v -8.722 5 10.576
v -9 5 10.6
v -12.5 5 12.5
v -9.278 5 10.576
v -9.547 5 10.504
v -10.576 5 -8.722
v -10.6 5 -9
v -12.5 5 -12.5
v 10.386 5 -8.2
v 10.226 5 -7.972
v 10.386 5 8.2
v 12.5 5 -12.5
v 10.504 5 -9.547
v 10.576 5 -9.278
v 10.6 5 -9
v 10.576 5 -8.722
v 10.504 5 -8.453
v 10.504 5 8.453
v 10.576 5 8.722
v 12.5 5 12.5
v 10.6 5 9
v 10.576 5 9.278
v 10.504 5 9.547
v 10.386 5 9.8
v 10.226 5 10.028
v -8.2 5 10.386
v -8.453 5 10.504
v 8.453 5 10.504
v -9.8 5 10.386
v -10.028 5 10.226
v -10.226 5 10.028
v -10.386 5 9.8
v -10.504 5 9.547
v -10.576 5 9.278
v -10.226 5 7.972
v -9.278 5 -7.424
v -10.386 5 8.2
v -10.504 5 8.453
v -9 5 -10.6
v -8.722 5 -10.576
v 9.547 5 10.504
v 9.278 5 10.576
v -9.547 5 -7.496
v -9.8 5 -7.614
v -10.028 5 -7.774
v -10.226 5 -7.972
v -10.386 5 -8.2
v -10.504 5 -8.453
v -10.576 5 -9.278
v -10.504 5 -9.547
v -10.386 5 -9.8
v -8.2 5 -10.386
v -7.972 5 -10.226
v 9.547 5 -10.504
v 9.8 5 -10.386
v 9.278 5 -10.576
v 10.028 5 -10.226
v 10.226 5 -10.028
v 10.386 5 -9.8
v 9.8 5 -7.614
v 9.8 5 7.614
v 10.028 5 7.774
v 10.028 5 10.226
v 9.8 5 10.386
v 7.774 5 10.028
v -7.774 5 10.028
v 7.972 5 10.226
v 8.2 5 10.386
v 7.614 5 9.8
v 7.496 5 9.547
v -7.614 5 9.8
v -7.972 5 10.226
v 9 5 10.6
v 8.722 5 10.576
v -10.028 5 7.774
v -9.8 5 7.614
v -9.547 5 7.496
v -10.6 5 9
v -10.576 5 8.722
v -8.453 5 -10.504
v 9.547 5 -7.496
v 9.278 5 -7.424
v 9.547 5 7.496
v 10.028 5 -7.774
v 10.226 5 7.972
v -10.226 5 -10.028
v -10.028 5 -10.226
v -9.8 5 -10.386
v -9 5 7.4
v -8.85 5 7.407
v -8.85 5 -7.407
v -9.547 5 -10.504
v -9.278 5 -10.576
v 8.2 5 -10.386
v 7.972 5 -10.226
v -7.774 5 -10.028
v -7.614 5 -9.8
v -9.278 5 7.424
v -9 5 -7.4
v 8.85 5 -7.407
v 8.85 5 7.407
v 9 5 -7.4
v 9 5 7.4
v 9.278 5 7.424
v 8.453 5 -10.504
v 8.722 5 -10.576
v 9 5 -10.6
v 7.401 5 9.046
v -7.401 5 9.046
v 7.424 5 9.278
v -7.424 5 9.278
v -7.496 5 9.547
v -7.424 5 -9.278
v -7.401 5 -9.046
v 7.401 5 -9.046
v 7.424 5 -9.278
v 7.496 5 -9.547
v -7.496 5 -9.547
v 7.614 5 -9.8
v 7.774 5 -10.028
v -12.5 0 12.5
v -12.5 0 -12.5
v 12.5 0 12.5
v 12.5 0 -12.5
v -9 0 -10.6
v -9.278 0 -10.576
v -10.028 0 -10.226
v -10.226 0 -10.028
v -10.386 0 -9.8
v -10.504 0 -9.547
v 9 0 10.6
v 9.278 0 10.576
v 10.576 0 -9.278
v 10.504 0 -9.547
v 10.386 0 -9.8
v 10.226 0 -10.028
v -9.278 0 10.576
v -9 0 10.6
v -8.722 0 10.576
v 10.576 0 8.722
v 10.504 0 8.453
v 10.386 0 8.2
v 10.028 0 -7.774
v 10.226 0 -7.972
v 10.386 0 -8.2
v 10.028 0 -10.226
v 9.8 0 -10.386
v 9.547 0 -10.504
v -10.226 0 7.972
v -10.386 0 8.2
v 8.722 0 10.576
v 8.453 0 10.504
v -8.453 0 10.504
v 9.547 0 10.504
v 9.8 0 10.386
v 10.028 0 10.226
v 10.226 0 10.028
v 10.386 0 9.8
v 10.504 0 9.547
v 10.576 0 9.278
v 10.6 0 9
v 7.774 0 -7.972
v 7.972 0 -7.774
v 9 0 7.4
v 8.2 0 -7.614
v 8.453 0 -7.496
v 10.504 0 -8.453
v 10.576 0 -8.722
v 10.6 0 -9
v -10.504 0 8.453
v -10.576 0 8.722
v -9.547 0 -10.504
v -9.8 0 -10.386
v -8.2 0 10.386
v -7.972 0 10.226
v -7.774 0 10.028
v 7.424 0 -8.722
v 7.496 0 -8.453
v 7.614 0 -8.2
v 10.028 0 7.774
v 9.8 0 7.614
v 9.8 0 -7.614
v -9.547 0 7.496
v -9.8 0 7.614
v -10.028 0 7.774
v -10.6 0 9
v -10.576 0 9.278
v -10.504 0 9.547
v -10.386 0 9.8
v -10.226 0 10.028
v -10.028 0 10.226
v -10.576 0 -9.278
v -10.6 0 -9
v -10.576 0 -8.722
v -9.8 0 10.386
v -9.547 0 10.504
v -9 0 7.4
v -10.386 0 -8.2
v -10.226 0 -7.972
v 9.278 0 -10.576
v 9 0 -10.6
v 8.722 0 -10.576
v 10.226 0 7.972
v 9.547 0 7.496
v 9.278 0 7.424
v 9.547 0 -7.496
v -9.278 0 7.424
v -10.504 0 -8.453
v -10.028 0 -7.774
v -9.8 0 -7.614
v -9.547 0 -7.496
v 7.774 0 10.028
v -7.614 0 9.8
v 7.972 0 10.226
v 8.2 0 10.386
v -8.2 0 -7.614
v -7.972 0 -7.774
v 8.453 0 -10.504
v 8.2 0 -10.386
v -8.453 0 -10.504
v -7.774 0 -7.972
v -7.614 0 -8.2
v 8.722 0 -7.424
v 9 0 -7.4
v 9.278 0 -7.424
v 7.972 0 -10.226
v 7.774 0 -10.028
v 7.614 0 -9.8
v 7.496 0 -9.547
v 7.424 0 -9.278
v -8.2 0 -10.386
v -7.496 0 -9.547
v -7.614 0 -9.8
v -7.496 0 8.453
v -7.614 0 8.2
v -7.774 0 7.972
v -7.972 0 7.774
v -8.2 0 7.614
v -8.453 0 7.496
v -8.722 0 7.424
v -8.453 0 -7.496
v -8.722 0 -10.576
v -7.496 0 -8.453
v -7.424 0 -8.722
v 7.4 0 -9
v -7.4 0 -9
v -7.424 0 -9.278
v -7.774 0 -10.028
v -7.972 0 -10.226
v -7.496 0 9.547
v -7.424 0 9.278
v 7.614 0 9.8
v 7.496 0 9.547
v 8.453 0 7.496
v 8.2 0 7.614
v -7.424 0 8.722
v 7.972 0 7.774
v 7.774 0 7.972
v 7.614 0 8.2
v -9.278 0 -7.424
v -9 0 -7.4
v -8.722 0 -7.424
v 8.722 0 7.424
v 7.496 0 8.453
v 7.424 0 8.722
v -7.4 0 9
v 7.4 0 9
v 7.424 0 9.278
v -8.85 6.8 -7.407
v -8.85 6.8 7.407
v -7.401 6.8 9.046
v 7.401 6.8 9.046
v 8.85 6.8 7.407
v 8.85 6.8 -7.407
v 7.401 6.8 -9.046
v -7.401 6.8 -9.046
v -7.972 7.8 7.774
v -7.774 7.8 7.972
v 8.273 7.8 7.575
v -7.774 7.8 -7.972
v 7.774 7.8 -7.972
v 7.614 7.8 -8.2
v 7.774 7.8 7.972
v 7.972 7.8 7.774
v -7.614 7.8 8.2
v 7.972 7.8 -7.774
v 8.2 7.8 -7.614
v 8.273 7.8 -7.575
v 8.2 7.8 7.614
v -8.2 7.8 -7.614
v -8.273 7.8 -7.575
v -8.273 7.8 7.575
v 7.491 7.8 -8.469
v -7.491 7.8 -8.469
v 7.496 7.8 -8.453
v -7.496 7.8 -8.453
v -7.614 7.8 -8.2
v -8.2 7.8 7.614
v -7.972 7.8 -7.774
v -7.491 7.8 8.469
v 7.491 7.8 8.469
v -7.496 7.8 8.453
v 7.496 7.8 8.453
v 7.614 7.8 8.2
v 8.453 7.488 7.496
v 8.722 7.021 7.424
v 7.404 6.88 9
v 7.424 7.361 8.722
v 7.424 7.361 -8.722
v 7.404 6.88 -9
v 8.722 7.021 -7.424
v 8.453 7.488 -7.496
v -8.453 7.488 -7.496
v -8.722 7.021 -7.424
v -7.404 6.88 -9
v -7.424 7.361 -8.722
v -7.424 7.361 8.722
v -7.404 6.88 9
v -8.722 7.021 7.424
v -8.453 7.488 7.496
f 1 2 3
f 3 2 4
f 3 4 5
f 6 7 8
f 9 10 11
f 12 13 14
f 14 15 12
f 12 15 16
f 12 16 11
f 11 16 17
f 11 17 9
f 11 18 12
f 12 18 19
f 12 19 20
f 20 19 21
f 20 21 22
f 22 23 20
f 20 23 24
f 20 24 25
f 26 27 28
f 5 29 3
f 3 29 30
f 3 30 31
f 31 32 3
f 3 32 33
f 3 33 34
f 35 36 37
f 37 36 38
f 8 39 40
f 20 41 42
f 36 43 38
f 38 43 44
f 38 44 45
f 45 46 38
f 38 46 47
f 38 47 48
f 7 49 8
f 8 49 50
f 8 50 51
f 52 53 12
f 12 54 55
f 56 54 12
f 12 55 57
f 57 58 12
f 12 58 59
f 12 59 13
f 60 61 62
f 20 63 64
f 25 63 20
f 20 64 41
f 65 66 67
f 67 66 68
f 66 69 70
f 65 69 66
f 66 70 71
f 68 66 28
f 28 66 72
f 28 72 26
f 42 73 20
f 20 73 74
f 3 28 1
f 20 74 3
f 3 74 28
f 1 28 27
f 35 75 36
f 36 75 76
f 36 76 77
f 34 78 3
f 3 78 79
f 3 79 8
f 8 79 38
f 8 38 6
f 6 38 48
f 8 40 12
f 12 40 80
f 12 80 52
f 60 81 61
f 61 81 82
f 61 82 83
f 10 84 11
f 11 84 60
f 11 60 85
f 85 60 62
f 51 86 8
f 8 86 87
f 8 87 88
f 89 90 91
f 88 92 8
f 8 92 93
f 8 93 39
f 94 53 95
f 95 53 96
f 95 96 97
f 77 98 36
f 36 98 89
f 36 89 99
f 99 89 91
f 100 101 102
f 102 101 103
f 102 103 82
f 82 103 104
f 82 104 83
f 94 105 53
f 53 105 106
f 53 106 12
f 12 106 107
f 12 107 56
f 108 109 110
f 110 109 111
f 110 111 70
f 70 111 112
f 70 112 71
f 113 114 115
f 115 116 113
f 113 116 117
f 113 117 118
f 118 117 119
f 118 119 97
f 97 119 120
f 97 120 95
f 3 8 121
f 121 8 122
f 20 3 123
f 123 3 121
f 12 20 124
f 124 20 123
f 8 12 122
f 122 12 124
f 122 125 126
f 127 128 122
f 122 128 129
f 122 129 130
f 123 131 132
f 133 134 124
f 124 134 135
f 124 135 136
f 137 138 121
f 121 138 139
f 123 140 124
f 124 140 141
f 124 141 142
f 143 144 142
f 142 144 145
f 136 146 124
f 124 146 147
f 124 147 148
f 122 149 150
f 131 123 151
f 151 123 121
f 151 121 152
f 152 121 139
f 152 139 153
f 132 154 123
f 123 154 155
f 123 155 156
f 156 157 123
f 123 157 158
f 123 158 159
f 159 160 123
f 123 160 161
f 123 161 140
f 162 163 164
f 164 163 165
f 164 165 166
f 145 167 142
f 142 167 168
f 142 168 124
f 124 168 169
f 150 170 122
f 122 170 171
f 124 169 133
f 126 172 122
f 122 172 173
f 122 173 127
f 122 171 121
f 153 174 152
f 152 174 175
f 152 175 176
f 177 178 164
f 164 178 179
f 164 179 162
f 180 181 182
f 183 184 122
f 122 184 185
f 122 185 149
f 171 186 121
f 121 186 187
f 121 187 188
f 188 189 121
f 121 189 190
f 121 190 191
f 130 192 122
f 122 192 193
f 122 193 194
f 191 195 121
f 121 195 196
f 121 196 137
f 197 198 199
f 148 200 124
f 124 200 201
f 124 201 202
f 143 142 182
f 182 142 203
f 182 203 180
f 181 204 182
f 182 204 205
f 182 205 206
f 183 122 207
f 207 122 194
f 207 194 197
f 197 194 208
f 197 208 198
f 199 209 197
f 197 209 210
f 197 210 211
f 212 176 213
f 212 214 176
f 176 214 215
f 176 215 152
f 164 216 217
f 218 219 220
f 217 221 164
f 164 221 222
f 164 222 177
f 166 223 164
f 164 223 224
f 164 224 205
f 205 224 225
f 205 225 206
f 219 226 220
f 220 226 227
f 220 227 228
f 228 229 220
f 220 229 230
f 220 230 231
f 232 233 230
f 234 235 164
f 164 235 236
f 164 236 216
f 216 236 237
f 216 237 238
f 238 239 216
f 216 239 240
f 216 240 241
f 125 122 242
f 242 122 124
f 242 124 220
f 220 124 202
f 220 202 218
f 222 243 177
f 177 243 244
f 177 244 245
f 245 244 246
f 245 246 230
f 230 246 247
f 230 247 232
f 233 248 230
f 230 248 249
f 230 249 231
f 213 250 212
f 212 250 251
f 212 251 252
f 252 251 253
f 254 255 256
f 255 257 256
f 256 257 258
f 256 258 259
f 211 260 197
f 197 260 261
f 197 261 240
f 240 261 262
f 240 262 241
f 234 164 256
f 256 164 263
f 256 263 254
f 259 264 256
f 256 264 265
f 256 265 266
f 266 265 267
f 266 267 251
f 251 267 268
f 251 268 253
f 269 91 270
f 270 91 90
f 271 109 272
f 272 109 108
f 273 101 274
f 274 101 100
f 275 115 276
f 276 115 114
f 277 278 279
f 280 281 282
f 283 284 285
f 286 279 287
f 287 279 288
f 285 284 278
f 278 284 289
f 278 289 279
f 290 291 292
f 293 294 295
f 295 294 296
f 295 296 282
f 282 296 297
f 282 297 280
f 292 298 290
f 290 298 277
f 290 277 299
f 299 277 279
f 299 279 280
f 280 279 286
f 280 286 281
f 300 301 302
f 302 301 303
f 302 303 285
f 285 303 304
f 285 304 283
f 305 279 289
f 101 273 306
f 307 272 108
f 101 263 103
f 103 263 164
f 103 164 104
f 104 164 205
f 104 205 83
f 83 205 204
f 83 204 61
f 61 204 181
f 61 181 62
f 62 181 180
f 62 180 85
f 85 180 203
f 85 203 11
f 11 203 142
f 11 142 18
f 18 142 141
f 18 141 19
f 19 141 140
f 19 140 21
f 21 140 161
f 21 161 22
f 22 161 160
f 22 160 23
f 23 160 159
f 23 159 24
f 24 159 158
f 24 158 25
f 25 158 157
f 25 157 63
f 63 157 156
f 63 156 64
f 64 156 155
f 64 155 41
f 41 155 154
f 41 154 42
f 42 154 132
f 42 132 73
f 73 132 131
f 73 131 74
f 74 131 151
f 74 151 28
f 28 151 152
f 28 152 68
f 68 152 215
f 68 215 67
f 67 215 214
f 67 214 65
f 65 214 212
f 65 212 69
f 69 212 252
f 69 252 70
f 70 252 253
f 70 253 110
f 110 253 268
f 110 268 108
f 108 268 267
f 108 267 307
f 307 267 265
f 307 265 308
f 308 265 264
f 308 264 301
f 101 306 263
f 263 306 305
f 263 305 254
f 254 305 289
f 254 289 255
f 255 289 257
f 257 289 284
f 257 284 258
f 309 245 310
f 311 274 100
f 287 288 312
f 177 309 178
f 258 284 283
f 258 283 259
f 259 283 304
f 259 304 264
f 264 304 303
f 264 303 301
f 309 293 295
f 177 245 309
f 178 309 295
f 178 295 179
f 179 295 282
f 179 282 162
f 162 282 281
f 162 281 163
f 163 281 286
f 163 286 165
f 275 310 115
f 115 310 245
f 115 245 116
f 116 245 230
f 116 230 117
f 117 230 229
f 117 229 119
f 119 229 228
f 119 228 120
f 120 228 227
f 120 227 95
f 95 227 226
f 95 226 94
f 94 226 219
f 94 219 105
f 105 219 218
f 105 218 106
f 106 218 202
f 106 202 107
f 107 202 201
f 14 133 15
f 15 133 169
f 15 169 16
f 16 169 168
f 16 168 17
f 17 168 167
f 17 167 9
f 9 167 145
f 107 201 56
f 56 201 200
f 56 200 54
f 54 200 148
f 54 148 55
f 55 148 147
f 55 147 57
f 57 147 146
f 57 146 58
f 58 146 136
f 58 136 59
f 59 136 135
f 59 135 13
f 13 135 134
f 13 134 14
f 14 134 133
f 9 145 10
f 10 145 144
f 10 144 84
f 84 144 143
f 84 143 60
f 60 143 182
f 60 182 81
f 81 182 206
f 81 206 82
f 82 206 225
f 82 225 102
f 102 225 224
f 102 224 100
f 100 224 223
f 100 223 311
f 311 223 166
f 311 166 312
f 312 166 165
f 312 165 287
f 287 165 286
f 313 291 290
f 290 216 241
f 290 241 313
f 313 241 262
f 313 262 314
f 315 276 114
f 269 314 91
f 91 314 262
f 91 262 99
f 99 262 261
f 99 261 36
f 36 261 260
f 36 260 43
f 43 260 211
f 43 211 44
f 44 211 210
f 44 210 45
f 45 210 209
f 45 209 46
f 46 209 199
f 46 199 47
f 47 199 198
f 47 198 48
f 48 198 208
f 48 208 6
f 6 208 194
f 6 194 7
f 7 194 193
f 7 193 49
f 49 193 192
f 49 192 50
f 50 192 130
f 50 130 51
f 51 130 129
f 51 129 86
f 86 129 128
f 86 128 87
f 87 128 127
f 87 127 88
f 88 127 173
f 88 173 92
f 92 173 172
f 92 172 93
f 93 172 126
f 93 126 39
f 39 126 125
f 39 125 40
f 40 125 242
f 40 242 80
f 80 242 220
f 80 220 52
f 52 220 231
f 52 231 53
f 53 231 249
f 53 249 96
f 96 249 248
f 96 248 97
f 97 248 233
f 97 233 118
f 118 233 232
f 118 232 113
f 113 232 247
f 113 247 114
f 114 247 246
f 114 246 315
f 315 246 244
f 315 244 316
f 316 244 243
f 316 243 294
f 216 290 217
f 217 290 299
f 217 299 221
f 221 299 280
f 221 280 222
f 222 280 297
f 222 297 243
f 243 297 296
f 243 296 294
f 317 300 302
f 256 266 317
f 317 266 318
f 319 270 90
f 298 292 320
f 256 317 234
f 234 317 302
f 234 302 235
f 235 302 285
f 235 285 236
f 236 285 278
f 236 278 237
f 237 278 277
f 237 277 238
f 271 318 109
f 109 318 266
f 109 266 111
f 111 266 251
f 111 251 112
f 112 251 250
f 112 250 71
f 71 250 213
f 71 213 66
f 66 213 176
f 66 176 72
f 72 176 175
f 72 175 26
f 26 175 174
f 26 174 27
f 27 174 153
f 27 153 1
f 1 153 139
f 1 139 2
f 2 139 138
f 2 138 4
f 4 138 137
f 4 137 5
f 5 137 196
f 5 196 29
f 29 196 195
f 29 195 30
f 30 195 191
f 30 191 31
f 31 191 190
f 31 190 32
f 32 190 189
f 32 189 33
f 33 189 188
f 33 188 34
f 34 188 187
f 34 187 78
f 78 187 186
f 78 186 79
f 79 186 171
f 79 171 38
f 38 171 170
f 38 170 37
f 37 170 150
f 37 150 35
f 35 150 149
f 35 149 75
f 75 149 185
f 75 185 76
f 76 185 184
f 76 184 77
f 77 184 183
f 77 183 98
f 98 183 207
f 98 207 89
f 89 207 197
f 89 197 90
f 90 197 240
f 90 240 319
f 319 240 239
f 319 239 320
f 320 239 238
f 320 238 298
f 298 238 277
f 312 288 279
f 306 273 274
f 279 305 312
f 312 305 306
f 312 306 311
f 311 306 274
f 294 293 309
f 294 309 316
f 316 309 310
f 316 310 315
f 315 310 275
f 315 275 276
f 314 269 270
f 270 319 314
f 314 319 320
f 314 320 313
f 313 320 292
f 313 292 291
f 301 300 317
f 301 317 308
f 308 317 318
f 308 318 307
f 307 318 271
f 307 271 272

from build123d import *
from OCP.BRepFilletAPI import BRepFilletAPI_MakeChamfer

# Parameters (mm, degrees)
SKETCH1_W               = 25
SKETCH1_H               = 25
BOSS_EXTRUDE1_DEPTH     = 5
SKETCH4_R               = 4.15
CUT_EXTRUDE2_DEPTH      = 19.371173071
SKETCH9_W               = 17.7
SKETCH9_H               = 18.092678694
BOSS_EXTRUDE3_DEPTH     = 2.8
CUT_EXTRUDE4_DEPTH      = 19.371173071
CUT_EXTRUDE4_DEPTH_BACK = 19.371173071
SKETCH6_R               = 1.6
CHAMFER1_SIZE           = 1
CHAMFER1_SIZE2          = 0.577350269
SKETCH10_R              = 4.15
BOSS_EXTRUDE4_DEPTH     = 5


with BuildPart() as part:
    # Sketch1 → Boss-Extrude1 (new body)
    with BuildSketch(Plane(origin=(0, 0, 0), x_dir=(1, 0, 0), z_dir=(0, 1, 0))):
        Rectangle(SKETCH1_W, SKETCH1_H)
    extrude(amount=BOSS_EXTRUDE1_DEPTH)

    # Sketch4 → Cut-Extrude2 (cut, through all)
    with BuildSketch(Plane(origin=(0, 5, 0), x_dir=(1, 0, 0), z_dir=(0, 1, 0))):
        with Locations(Location((0, 0, 0), (0, 0, 270))):
            Circle(SKETCH4_R)
    extrude(amount=-CUT_EXTRUDE2_DEPTH, mode=Mode.SUBTRACT)

    # Sketch9 → Boss-Extrude3 (add)
    with BuildSketch(Plane(origin=(0, 5, 0), x_dir=(1, 0, 0), z_dir=(0, 1, 0))):
        Rectangle(SKETCH9_W, SKETCH9_H)
    extrude(amount=BOSS_EXTRUDE3_DEPTH)

    # Sketch6 → Cut-Extrude4 (cut, two sides: drawn at the far end of the back side and taken through both)
    with BuildSketch(Plane(origin=(0, 5, 0), x_dir=(1, 0, 0), z_dir=(0, 1, 0)).offset(-CUT_EXTRUDE4_DEPTH_BACK)):
        with Locations(Location((9, -9, 0), (0, 0, 270))):
            Circle(SKETCH6_R)
        with Locations(Location((-9, -9, 0), (0, 0, 270))):
            Circle(SKETCH6_R)
        with Locations(Location((-9, 9, 0), (0, 0, 270))):
            Circle(SKETCH6_R)
        with Locations(Location((9, 9, 0), (0, 0, 270))):
            Circle(SKETCH6_R)
    extrude(amount=CUT_EXTRUDE4_DEPTH + CUT_EXTRUDE4_DEPTH_BACK, mode=Mode.SUBTRACT)

    # Chamfer1: one chamfer whose edges measure the first distance from different faces: ONE call of the kernel's chamfer builder (chamfer() names one face for all edges)
    chamfer1_edges_1 = [part.edges().sort_by_distance(p)[0] for p in [
        (8.85, 7.8, 0),
    ]]
    chamfer1_side_1 = [part.faces().sort_by_distance(p)[0] for p in [
        (8.85, 6.4, 0),
    ]]
    chamfer1_edges_2 = [part.edges().sort_by_distance(p)[0] for p in [
        (0, 7.8, 9.046339347),
    ]]
    chamfer1_side_2 = [part.faces().sort_by_distance(p)[0] for p in [
        (0, 6.4, 9.046339347),
    ]]
    chamfer1_edges_3 = [part.edges().sort_by_distance(p)[0] for p in [
        (0, 7.8, -9.046339347),
    ]]
    chamfer1_side_3 = [part.faces().sort_by_distance(p)[0] for p in [
        (0, 6.4, -9.046339347),
    ]]
    chamfer1_edges_4 = [part.edges().sort_by_distance(p)[0] for p in [
        (-8.85, 7.8, 0),
    ]]
    chamfer1_side_4 = [part.faces().sort_by_distance(p)[0] for p in [
        (-8.85, 6.4, 0),
    ]]
    chamfer1 = BRepFilletAPI_MakeChamfer(part.part.solid().wrapped)
    for e in chamfer1_edges_1:
        chamfer1.Add(CHAMFER1_SIZE, CHAMFER1_SIZE2, e.wrapped, chamfer1_side_1[0].wrapped)  # the first distance lies on this face
    for e in chamfer1_edges_2:
        chamfer1.Add(CHAMFER1_SIZE, CHAMFER1_SIZE2, e.wrapped, chamfer1_side_2[0].wrapped)  # the first distance lies on this face
    for e in chamfer1_edges_3:
        chamfer1.Add(CHAMFER1_SIZE, CHAMFER1_SIZE2, e.wrapped, chamfer1_side_3[0].wrapped)  # the first distance lies on this face
    for e in chamfer1_edges_4:
        chamfer1.Add(CHAMFER1_SIZE, CHAMFER1_SIZE2, e.wrapped, chamfer1_side_4[0].wrapped)  # the first distance lies on this face
    add(Compound.cast(chamfer1.Shape()), mode=Mode.REPLACE)

    # Sketch10 → Boss-Extrude4 (add)
    with BuildSketch(Plane.XZ.offset(-5)):
        Circle(SKETCH10_R)
    extrude(amount=BOSS_EXTRUDE4_DEPTH)


solid = part.part
